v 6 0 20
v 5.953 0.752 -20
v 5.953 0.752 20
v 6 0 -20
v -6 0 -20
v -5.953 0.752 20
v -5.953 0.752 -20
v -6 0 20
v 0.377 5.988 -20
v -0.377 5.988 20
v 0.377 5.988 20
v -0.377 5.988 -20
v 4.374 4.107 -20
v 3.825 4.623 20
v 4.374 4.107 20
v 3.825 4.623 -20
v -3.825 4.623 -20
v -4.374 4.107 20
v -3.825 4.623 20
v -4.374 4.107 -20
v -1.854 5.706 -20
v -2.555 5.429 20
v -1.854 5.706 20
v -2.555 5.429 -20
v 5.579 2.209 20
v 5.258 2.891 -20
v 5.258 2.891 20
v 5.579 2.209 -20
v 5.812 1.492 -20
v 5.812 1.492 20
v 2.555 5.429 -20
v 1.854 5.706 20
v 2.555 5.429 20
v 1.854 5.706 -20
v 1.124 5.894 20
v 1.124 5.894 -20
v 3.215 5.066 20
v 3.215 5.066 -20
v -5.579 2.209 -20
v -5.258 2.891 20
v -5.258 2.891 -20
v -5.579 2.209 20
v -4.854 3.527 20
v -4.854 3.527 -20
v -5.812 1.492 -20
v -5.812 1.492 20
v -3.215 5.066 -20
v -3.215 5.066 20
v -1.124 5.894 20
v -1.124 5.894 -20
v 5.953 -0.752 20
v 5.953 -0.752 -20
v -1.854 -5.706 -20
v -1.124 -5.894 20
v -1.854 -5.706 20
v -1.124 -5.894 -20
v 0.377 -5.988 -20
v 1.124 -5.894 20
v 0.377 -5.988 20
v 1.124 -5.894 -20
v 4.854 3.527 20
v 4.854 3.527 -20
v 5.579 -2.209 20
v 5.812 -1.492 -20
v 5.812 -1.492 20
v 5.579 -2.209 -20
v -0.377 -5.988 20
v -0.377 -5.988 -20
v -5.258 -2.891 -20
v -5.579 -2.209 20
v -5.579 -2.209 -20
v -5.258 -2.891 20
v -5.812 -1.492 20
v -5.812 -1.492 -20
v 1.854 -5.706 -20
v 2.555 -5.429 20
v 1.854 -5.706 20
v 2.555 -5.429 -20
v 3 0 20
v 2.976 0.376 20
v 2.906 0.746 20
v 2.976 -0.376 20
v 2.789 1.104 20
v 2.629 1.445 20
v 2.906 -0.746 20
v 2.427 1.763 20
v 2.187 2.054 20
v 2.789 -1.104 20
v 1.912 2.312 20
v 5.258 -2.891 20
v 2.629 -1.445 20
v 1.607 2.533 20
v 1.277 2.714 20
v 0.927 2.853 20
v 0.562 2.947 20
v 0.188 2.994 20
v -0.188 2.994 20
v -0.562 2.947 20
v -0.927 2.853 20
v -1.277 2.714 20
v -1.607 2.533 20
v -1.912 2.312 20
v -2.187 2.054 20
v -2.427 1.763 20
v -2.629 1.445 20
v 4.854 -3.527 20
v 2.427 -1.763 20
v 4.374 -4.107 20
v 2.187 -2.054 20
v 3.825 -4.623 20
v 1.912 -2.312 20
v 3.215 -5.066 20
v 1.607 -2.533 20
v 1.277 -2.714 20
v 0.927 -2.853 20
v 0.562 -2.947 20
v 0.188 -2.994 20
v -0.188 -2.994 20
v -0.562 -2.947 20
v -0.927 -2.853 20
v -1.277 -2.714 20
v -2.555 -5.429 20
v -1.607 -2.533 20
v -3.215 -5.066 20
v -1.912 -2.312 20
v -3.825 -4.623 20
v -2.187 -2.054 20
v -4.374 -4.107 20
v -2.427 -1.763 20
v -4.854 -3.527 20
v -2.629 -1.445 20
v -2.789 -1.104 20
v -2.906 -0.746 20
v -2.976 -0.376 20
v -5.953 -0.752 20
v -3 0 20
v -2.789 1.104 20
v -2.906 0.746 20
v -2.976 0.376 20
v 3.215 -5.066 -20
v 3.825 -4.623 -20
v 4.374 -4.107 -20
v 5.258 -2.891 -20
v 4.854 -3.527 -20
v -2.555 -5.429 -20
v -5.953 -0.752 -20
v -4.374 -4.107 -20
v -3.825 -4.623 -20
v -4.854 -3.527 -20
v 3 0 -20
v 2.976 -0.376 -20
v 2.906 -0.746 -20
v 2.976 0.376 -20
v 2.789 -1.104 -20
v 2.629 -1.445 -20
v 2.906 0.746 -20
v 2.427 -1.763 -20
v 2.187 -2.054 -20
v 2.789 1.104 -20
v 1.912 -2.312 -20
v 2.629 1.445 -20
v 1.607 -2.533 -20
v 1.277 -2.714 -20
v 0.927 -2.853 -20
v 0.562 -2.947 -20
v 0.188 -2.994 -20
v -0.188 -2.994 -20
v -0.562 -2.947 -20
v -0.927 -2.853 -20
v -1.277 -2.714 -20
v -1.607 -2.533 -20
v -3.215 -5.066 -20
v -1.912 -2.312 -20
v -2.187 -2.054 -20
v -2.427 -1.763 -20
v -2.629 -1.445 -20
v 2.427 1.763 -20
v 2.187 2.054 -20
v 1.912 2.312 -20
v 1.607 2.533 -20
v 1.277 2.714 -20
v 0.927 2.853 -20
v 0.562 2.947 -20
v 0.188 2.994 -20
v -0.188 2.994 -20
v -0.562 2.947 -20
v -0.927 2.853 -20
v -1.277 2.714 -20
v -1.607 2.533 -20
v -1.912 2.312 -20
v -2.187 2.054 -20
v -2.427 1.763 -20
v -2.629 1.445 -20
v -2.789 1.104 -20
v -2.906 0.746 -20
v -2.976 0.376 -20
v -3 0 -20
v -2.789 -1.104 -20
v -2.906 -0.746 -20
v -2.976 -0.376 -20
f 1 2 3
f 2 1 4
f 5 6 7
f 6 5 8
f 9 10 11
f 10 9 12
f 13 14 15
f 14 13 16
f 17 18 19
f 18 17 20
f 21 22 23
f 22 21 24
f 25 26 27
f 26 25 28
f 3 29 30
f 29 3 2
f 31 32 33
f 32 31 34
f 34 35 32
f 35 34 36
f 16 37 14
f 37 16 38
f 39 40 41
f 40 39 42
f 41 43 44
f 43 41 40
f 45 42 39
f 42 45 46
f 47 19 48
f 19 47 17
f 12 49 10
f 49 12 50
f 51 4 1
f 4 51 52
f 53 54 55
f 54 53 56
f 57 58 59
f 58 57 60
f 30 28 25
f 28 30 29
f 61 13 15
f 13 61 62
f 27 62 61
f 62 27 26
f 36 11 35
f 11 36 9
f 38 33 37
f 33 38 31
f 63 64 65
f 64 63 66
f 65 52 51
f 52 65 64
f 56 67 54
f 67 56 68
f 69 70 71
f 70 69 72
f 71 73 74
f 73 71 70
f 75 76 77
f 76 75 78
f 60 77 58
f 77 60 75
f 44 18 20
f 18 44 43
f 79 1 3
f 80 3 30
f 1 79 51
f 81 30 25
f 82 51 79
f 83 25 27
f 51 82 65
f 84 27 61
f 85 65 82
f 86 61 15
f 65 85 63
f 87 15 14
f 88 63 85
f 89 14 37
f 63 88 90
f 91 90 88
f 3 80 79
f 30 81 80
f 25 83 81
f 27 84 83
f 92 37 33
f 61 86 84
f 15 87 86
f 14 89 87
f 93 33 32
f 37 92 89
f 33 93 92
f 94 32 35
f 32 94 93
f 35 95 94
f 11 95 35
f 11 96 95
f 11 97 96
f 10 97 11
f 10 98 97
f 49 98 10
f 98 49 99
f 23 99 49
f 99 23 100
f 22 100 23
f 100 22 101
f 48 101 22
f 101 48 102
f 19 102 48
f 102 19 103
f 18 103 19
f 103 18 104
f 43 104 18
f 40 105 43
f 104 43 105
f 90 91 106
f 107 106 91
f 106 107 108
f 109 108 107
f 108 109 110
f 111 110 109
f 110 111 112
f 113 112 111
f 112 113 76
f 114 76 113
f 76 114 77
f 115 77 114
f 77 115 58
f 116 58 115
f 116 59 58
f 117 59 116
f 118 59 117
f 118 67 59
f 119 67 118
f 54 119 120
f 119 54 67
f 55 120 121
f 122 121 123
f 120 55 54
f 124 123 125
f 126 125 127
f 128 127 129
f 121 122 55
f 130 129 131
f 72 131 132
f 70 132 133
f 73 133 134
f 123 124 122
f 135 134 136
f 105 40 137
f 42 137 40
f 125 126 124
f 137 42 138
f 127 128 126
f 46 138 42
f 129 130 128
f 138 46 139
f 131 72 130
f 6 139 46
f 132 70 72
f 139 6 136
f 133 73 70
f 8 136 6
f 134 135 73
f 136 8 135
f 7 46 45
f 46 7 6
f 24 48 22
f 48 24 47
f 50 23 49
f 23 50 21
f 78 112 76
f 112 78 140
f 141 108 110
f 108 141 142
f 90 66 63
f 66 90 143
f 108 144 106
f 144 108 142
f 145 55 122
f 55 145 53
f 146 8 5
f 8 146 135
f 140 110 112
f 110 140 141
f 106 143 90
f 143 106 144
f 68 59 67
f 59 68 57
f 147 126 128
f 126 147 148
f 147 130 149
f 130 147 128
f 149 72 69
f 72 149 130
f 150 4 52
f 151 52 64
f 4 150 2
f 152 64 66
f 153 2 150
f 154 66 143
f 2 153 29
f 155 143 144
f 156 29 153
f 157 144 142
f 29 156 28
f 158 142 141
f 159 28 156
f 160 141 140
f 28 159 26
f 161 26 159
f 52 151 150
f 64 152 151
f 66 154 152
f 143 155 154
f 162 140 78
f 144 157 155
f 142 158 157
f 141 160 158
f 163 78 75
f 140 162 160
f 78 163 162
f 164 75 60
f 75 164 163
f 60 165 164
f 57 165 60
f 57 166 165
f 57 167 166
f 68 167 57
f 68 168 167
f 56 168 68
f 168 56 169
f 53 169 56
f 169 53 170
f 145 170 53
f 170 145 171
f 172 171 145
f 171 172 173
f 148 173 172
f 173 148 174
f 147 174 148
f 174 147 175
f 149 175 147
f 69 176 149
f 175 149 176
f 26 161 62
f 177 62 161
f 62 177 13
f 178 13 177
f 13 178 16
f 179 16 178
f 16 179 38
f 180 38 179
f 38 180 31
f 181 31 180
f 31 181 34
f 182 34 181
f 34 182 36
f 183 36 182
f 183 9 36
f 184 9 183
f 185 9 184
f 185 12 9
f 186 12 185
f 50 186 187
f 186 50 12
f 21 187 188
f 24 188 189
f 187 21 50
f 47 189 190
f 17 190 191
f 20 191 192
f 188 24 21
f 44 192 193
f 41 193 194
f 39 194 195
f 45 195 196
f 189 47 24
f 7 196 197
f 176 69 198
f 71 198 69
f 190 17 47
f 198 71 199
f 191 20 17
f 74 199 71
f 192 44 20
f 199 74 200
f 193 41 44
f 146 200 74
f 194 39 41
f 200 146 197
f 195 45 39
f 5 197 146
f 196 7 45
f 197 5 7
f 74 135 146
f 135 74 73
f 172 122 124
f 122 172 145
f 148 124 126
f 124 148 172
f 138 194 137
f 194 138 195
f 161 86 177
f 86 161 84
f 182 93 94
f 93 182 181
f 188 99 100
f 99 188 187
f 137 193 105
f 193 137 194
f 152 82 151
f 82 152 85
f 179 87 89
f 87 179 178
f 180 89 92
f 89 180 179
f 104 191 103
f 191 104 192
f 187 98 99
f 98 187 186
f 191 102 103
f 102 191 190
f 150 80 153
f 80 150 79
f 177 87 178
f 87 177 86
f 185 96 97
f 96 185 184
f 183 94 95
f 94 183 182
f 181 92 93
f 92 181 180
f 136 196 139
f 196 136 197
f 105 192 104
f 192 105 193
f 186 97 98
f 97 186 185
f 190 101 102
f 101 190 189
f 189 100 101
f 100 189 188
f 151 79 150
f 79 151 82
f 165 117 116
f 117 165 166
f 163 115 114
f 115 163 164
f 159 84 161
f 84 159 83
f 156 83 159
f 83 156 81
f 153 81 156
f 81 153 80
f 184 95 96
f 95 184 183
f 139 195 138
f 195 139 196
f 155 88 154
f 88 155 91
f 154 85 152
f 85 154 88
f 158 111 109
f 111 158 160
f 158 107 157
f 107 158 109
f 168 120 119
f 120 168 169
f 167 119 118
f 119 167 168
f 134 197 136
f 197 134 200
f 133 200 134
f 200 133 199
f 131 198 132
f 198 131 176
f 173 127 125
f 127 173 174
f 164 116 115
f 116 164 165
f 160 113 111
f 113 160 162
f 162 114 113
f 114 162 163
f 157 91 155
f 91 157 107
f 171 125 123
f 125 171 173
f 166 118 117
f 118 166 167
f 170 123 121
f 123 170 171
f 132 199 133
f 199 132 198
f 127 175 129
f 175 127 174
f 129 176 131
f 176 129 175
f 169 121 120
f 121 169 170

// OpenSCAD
$fn = 50;


difference() {
	union() {
		translate(v = [0, 0, -20.0000000000]) {
			cylinder(h = 40, r = 6.0000000000);
		}
	}
	union() {
		translate(v = [0, 0, -100.0000000000]) {
			cylinder(h = 200, r = 3.0000000000);
		}
	}
}
